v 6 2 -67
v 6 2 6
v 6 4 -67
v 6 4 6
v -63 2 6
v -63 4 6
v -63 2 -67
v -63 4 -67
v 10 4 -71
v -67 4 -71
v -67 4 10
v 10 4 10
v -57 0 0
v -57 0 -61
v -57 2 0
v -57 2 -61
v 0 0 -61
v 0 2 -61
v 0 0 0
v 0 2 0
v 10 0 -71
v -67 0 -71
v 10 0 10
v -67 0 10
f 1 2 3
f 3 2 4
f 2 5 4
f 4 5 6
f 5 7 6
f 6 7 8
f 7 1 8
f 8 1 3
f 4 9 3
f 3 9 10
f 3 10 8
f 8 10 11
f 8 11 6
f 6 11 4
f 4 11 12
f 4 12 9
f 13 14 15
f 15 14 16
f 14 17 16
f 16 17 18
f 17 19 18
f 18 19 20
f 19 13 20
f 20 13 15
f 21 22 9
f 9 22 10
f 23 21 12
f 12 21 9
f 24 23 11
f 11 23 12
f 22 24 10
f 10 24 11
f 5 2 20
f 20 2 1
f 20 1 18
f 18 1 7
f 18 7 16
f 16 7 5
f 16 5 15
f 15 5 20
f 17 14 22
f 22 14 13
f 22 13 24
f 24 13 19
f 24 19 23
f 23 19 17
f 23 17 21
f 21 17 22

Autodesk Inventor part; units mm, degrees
ref_plane "YZ Plane" through (0, 0, 0) normal (1, 0, 0) x (0, 1, 0)
ref_plane "XZ Plane" through (0, 0, 0) normal (0, 1, 0) x (-1, 0, 0)
ref_plane "XY Plane" through (0, 0, 0) normal (0, 0, 1) x (1, 0, 0)
sketch "Sketch1" plane through (0, 0, 0) normal (0, 1, 0) x (-1, 0, 0)
  point P0 (0, 0)
sketch "Sketch2" plane through (0, 0, 0) normal (0, 1, 0) x (-1, 0, 0)
  line L0 (0, 0) -> (57, 0)
  line L1 (57, 0) -> (57, -61)
  line L2 (57, -61) -> (0, -61)
  line L3 (0, -61) -> (0, 0)
  line L4 (67, -71) -> (67, 10)
  line L5 (67, 10) -> (-10, 10)
  line L6 (-10, 10) -> (-10, -71)
  line L7 (-10, -71) -> (67, -71)
  dimension "d0" = 57
  dimension "d1" = 61
  dimension "d2" = 10
extrude "Extrusion1" add sketch "Sketch2" along normal blind 2
sketch "Sketch3" plane through (0, 2, 0) normal (0, 1, 0) x (1, 0, 0)
  line L0 (10, -10) -> (10, 71) projected
  line L1 (-67, 71) -> (-67, -10) projected
  line L2 (10, -10) -> (-67, -10)
  line L3 (-67, -10) -> (-67, 71)
  line L4 (-67, 71) -> (10, 71)
  line L5 (10, 71) -> (10, -10)
  line L6 (6, 67) -> (-63, 67)
  line L7 (-63, 67) -> (-63, -6)
  line L8 (-63, -6) -> (6, -6)
  line L9 (6, -6) -> (6, 67)
  point P0 (0, 0)
  dimension "d5" = 4
extrude "Extrusion2" add sketch "Sketch3" along normal blind 2
properties part number "Scannframebottom"
